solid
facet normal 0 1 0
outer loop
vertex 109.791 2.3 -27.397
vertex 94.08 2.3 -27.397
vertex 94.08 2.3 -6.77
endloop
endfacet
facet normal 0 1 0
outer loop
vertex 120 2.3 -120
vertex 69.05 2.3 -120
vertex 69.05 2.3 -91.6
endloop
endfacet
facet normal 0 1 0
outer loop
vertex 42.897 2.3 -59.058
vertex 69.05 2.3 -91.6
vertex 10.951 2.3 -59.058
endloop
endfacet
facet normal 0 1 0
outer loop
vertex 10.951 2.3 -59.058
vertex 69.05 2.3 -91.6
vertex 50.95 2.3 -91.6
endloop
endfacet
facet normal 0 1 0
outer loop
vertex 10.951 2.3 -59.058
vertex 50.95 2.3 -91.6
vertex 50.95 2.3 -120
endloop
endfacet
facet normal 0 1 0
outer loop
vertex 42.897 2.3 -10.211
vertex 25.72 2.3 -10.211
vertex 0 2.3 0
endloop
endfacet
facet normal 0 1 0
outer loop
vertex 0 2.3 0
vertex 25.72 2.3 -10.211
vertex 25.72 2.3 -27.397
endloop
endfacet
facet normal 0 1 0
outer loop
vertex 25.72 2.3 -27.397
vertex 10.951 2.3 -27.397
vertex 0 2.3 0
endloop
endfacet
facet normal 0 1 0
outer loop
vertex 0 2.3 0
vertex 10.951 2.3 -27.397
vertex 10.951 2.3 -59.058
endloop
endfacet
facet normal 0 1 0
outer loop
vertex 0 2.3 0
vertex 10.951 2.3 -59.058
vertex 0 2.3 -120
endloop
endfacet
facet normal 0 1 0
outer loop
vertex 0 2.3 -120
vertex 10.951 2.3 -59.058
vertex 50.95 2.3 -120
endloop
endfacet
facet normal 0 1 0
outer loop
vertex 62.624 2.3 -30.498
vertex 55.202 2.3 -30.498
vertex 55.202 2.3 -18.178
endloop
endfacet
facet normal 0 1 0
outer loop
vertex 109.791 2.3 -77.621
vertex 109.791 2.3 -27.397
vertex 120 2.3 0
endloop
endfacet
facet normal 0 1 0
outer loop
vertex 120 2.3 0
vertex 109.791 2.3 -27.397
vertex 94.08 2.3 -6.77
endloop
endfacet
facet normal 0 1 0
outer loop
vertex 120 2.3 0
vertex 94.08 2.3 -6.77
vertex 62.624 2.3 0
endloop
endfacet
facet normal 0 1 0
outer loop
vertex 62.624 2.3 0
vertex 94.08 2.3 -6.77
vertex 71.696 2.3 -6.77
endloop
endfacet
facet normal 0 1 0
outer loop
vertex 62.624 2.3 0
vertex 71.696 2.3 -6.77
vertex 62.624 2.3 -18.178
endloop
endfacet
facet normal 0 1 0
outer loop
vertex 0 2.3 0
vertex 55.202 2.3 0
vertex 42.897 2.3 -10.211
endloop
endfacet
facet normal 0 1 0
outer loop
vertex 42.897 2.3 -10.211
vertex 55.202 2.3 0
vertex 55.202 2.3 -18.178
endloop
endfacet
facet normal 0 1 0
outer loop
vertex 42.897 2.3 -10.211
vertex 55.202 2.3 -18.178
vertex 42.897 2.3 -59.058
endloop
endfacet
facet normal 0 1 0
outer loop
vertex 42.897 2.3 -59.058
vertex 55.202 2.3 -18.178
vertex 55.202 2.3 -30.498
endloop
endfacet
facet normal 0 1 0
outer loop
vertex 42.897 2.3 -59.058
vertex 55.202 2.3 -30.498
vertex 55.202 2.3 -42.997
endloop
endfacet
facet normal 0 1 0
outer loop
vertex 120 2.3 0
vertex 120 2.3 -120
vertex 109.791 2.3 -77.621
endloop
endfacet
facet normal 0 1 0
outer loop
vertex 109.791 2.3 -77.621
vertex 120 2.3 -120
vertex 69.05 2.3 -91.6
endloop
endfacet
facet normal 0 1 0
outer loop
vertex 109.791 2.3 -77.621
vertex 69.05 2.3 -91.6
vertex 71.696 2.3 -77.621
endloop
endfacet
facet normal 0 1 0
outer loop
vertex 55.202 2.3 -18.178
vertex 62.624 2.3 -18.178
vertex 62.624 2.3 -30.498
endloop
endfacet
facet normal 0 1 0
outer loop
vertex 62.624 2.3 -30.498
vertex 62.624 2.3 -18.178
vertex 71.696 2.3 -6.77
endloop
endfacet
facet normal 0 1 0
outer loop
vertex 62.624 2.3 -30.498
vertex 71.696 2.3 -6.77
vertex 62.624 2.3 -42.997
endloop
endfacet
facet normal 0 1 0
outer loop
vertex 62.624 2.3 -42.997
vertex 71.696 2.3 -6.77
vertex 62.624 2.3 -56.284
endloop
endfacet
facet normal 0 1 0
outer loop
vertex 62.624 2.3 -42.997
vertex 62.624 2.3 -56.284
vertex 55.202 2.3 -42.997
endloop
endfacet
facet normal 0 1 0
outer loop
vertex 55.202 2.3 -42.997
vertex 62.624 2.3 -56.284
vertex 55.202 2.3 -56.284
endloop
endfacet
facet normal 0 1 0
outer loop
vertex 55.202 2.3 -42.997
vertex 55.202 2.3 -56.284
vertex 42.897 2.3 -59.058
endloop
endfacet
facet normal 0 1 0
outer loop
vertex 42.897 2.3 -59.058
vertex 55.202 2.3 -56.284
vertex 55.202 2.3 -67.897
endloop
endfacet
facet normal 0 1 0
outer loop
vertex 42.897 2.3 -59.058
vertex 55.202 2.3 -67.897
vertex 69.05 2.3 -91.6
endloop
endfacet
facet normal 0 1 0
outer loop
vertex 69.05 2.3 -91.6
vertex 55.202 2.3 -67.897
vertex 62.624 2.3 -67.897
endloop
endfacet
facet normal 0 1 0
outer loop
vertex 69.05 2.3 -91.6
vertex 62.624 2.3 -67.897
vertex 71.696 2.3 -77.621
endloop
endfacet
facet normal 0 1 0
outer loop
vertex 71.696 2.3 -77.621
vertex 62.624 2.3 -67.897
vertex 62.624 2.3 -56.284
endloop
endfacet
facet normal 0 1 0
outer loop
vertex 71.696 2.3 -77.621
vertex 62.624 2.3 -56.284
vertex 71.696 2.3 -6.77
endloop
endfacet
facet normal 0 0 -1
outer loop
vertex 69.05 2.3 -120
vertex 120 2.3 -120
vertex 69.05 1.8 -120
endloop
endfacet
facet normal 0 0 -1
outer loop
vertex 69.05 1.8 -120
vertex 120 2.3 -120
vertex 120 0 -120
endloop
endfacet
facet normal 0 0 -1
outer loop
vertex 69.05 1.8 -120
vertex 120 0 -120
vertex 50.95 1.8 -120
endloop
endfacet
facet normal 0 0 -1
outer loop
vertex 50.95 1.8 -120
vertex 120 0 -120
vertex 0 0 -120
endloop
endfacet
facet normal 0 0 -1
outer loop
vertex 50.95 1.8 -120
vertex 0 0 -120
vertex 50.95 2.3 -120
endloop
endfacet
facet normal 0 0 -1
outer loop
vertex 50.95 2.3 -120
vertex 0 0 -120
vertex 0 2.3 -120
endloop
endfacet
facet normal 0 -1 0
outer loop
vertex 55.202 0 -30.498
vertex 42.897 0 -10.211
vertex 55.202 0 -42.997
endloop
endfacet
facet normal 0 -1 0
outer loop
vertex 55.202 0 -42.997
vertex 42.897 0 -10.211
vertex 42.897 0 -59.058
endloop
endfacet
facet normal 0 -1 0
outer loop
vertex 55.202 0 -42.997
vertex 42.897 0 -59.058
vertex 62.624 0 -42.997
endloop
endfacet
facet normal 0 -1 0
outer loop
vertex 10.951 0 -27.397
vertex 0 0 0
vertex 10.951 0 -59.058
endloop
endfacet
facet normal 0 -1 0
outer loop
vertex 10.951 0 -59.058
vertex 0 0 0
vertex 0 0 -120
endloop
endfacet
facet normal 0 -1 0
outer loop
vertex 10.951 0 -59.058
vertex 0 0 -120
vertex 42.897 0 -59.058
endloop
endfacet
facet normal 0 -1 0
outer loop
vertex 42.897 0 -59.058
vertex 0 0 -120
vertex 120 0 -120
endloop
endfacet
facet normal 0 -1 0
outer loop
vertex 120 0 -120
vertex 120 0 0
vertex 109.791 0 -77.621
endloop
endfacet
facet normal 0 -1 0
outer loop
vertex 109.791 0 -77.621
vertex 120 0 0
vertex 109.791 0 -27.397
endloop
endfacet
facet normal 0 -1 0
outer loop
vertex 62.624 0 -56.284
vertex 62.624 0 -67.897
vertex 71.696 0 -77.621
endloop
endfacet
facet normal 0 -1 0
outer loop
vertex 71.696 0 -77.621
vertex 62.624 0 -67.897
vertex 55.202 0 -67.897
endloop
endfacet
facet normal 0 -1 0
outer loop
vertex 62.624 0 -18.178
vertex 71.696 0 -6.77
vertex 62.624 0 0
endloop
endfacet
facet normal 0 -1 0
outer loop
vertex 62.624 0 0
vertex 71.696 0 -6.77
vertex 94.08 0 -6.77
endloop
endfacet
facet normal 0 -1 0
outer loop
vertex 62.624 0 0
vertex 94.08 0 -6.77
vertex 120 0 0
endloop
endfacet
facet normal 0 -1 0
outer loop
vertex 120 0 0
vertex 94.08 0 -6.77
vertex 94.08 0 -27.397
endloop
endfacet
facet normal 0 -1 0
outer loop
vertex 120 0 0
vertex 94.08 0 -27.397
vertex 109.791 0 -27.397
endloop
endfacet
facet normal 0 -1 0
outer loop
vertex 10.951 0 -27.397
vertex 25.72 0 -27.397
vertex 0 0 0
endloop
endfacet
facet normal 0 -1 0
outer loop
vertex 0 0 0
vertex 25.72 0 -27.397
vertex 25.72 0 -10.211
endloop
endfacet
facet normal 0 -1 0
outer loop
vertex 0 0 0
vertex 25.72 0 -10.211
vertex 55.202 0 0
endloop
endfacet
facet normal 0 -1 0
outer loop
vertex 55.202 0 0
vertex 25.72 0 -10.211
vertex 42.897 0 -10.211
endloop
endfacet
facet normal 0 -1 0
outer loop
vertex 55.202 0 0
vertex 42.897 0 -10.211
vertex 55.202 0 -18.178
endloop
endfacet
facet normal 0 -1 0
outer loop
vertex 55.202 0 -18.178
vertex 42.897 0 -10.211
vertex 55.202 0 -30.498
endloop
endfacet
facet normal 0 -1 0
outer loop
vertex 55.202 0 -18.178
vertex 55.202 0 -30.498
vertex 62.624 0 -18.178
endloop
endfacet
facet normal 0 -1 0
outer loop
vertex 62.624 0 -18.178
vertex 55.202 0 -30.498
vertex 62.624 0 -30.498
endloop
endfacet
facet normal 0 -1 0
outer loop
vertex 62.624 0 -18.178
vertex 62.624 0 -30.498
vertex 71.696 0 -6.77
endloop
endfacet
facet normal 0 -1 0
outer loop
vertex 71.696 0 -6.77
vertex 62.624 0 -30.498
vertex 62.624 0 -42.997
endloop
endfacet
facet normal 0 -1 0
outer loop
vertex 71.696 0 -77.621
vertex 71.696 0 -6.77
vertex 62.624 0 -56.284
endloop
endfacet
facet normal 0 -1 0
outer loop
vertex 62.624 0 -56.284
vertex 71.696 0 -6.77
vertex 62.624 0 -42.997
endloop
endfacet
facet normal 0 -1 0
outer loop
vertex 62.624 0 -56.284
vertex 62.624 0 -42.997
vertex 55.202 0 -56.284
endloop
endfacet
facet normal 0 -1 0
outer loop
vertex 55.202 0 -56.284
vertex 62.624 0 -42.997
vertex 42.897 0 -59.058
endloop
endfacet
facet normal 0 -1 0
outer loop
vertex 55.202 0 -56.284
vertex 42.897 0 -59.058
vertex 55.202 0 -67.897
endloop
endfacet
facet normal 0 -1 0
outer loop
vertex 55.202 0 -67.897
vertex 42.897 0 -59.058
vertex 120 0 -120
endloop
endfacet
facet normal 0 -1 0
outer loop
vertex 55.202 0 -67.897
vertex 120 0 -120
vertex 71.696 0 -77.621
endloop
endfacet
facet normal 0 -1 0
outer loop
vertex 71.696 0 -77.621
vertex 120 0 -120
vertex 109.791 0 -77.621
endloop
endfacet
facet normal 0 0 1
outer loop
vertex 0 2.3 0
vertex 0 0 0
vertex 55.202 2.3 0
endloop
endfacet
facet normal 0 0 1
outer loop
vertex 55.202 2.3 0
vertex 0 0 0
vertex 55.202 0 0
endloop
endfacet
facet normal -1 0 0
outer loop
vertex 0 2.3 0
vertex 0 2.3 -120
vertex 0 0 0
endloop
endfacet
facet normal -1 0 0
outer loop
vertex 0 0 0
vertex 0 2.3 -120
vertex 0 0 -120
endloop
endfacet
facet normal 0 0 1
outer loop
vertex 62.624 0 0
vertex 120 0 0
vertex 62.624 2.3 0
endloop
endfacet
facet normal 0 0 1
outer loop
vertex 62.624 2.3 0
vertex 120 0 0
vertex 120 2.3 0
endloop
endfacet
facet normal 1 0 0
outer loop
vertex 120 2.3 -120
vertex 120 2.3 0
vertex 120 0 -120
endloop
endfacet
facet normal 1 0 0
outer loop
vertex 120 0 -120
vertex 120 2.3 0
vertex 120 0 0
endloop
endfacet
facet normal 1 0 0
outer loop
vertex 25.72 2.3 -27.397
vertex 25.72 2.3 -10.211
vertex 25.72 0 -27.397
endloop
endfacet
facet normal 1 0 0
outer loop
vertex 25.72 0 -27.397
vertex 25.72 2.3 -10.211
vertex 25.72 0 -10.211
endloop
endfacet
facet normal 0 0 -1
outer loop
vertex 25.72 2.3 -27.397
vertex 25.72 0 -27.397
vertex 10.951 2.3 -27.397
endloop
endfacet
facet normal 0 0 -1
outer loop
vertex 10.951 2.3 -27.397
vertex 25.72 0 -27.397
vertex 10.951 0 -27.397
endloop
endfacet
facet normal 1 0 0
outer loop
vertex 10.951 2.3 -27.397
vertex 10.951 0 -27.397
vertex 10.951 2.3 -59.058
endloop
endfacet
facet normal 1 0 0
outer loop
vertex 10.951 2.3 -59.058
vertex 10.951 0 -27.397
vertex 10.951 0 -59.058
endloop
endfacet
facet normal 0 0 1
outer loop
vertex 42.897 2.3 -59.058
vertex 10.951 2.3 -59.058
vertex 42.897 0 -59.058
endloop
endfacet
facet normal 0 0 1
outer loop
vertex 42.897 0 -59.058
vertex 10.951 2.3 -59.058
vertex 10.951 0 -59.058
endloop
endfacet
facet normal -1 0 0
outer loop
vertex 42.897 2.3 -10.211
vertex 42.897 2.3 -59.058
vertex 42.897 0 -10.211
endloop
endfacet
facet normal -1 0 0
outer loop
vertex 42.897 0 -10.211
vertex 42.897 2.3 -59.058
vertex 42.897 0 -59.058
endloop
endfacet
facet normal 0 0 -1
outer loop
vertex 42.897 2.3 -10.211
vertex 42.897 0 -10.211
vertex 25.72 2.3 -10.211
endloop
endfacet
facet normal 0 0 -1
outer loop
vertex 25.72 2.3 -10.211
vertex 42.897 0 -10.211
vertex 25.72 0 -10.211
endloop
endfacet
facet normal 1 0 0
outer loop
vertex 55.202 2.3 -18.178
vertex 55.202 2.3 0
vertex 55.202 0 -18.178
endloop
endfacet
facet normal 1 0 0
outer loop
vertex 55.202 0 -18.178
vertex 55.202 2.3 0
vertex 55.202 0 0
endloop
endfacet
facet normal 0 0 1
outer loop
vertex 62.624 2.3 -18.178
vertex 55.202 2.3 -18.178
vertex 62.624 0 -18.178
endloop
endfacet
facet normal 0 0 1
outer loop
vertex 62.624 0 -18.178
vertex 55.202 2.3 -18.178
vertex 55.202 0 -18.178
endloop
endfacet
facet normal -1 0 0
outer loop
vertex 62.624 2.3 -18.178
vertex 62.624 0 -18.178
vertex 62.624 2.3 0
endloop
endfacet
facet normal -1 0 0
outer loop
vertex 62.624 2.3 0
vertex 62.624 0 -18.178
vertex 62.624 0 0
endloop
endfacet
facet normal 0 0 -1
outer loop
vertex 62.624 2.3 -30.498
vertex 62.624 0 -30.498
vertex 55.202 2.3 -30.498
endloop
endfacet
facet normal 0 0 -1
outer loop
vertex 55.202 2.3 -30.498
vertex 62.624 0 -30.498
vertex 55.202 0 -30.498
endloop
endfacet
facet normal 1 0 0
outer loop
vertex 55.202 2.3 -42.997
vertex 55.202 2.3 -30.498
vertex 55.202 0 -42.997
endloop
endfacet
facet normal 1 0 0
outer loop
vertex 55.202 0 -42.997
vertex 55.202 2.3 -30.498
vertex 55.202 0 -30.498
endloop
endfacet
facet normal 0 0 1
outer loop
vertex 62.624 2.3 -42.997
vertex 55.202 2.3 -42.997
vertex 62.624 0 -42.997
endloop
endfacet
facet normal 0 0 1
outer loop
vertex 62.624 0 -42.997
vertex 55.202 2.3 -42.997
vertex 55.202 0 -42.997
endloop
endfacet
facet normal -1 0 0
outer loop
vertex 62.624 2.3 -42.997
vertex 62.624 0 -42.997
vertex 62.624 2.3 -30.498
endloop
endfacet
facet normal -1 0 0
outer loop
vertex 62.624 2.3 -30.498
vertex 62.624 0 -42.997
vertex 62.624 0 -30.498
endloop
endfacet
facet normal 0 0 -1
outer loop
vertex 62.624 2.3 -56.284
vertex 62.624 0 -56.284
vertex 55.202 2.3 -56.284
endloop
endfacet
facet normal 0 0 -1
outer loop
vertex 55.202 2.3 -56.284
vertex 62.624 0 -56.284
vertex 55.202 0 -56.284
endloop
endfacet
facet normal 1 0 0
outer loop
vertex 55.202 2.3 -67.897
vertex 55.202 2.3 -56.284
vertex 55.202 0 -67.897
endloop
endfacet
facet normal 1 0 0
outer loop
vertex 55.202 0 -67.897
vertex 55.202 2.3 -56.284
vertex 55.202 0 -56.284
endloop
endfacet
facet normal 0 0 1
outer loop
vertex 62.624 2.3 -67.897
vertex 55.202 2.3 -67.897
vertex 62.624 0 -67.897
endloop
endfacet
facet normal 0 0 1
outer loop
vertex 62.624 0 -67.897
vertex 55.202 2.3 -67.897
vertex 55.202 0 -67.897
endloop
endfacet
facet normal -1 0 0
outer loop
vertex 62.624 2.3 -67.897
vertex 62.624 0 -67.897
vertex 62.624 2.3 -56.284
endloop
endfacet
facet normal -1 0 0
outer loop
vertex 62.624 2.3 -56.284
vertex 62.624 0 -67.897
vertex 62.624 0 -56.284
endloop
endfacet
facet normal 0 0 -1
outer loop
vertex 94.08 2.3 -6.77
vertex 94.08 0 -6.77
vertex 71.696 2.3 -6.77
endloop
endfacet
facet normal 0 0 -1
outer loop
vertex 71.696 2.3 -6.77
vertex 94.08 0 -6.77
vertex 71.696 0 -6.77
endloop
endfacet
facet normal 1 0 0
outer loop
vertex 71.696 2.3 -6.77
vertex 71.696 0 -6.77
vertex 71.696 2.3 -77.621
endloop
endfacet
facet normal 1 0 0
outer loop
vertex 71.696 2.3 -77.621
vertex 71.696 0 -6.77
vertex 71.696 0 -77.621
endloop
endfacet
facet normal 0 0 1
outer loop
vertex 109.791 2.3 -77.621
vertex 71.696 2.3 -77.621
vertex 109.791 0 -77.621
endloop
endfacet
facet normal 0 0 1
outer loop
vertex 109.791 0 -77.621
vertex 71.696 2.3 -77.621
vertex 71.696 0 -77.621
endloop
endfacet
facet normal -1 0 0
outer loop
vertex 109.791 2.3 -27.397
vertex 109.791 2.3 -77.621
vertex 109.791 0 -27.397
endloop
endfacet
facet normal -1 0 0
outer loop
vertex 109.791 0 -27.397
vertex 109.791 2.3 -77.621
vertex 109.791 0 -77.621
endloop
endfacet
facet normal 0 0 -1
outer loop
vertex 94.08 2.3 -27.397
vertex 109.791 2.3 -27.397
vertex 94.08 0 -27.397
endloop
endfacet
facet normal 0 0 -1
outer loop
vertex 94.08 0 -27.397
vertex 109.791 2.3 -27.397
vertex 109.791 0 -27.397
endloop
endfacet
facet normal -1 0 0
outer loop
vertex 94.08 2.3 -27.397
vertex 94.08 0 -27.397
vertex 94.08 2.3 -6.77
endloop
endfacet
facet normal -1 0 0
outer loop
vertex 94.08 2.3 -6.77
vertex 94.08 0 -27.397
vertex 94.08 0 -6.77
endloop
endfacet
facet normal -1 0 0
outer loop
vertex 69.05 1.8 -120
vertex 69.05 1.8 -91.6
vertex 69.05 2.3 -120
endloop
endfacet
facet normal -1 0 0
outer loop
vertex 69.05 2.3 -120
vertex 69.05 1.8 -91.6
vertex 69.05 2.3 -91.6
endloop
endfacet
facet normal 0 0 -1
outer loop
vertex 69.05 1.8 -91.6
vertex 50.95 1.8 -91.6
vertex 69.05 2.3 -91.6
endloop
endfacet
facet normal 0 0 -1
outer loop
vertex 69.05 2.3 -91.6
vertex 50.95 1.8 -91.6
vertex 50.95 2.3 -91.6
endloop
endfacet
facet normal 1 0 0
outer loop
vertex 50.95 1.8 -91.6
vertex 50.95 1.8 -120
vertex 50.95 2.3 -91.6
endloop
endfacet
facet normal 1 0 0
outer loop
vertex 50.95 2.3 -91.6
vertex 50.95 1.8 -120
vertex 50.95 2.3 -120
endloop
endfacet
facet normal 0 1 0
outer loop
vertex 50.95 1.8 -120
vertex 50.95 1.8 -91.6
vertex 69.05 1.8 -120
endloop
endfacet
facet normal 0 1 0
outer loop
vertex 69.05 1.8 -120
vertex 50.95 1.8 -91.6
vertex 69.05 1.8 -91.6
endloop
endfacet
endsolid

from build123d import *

# Parameters (mm, degrees)
SKETCH1_W           = 120
SKETCH1_H           = 120
BOSS_EXTRUDE1_DEPTH = 2.3
CUT_EXTRUDE1_REACH  = 171.721
SKETCH2_W           = 7.422122634
SKETCH2_H           = 18.177961541
SKETCH2_H_2         = 12.498339484
SKETCH2_H_3         = 11.613798671
SKETCH2_3_W         = 18.1
SKETCH2_3_H         = 28.4
CUT_EXTRUDE2_DEPTH  = 0.5


with BuildPart() as part:
    # Sketch1 → Boss-Extrude1 (new body)
    with BuildSketch(Plane(origin=(0, 0, 0), x_dir=(1, 0, 0), z_dir=(0, 1, 0))):
        with Locations((60, 60)):
            Rectangle(SKETCH1_W, SKETCH1_H)
    extrude(amount=BOSS_EXTRUDE1_DEPTH)

    # Sketch2 → Cut-Extrude1 (cut, up to next)
    with BuildSketch(Plane(origin=(0, 2.3, 0), x_dir=(1, 0, 0), z_dir=(0, 1, 0)), mode=Mode.PRIVATE) as cut_extrude1_sk1:
        Polygon((42.897324416, 59.05835662), (10.950631269, 59.05835662), (10.950631269, 27.396794206), (25.719897068, 27.396794206), (25.719897068, 10.210582129), (42.897324416, 10.210582129), align=None)
    cut_extrude1_tool1 = extrude(cut_extrude1_sk1.sketch, amount=-CUT_EXTRUDE1_REACH, mode=Mode.PRIVATE) & part.part
    # Sketch2 → Cut-Extrude1 (cut, up to next)
    with BuildSketch(Plane(origin=(0, 2.3, 0), x_dir=(1, 0, 0), z_dir=(0, 1, 0)), mode=Mode.PRIVATE) as cut_extrude1_sk2:
        Polygon((109.790535643, 77.620899486), (71.695725531, 77.620899486), (71.695725531, 6.770353139), (94.080420097, 6.770353139), (94.080420097, 27.396794206), (109.790535643, 27.396794206), align=None)
    cut_extrude1_tool2 = extrude(cut_extrude1_sk2.sketch, amount=-CUT_EXTRUDE1_REACH, mode=Mode.PRIVATE) & part.part
    # Sketch2 → Cut-Extrude1 (cut, up to next)
    with BuildSketch(Plane(origin=(0, 2.3, 0), x_dir=(1, 0, 0), z_dir=(0, 1, 0)), mode=Mode.PRIVATE) as cut_extrude1_sk3:
        with Locations((58.912993536, 9.088980771)):
            Rectangle(SKETCH2_W, SKETCH2_H)
    cut_extrude1_tool3 = extrude(cut_extrude1_sk3.sketch, amount=-CUT_EXTRUDE1_REACH, mode=Mode.PRIVATE) & part.part
    # Sketch2 → Cut-Extrude1 (cut, up to next)
    with BuildSketch(Plane(origin=(0, 2.3, 0), x_dir=(1, 0, 0), z_dir=(0, 1, 0)), mode=Mode.PRIVATE) as cut_extrude1_sk4:
        with Locations((58.912993536, 36.747395539)):
            Rectangle(SKETCH2_W, SKETCH2_H_2)
    cut_extrude1_tool4 = extrude(cut_extrude1_sk4.sketch, amount=-CUT_EXTRUDE1_REACH, mode=Mode.PRIVATE) & part.part
    # Sketch2 → Cut-Extrude1 (cut, up to next)
    with BuildSketch(Plane(origin=(0, 2.3, 0), x_dir=(1, 0, 0), z_dir=(0, 1, 0)), mode=Mode.PRIVATE) as cut_extrude1_sk5:
        with Locations((58.912993536, 62.090548619)):
            Rectangle(SKETCH2_W, SKETCH2_H_3)
    cut_extrude1_tool5 = extrude(cut_extrude1_sk5.sketch, amount=-CUT_EXTRUDE1_REACH, mode=Mode.PRIVATE) & part.part
    add(cut_extrude1_tool1.solids().sort_by_distance((28.592347, 2.3, -37.709621))[0], mode=Mode.SUBTRACT)
    add(cut_extrude1_tool2.solids().sort_by_distance((89.216049, 2.3, -45.62191))[0], mode=Mode.SUBTRACT)
    add(cut_extrude1_tool3.solids().sort_by_distance((58.912994, 2.3, -9.088981))[0], mode=Mode.SUBTRACT)
    add(cut_extrude1_tool4.solids().sort_by_distance((58.912994, 2.3, -36.747396))[0], mode=Mode.SUBTRACT)
    add(cut_extrude1_tool5.solids().sort_by_distance((58.912994, 2.3, -62.090549))[0], mode=Mode.SUBTRACT)

    # Sketch2<3> → Cut-Extrude2 (cut)
    with BuildSketch(Plane(origin=(0, 2.3, 0), x_dir=(1, 0, 0), z_dir=(0, 1, 0))):
        with Locations((60, 105.8)):
            Rectangle(SKETCH2_3_W, SKETCH2_3_H)
    extrude(amount=-CUT_EXTRUDE2_DEPTH, mode=Mode.SUBTRACT)


solid = part.part
